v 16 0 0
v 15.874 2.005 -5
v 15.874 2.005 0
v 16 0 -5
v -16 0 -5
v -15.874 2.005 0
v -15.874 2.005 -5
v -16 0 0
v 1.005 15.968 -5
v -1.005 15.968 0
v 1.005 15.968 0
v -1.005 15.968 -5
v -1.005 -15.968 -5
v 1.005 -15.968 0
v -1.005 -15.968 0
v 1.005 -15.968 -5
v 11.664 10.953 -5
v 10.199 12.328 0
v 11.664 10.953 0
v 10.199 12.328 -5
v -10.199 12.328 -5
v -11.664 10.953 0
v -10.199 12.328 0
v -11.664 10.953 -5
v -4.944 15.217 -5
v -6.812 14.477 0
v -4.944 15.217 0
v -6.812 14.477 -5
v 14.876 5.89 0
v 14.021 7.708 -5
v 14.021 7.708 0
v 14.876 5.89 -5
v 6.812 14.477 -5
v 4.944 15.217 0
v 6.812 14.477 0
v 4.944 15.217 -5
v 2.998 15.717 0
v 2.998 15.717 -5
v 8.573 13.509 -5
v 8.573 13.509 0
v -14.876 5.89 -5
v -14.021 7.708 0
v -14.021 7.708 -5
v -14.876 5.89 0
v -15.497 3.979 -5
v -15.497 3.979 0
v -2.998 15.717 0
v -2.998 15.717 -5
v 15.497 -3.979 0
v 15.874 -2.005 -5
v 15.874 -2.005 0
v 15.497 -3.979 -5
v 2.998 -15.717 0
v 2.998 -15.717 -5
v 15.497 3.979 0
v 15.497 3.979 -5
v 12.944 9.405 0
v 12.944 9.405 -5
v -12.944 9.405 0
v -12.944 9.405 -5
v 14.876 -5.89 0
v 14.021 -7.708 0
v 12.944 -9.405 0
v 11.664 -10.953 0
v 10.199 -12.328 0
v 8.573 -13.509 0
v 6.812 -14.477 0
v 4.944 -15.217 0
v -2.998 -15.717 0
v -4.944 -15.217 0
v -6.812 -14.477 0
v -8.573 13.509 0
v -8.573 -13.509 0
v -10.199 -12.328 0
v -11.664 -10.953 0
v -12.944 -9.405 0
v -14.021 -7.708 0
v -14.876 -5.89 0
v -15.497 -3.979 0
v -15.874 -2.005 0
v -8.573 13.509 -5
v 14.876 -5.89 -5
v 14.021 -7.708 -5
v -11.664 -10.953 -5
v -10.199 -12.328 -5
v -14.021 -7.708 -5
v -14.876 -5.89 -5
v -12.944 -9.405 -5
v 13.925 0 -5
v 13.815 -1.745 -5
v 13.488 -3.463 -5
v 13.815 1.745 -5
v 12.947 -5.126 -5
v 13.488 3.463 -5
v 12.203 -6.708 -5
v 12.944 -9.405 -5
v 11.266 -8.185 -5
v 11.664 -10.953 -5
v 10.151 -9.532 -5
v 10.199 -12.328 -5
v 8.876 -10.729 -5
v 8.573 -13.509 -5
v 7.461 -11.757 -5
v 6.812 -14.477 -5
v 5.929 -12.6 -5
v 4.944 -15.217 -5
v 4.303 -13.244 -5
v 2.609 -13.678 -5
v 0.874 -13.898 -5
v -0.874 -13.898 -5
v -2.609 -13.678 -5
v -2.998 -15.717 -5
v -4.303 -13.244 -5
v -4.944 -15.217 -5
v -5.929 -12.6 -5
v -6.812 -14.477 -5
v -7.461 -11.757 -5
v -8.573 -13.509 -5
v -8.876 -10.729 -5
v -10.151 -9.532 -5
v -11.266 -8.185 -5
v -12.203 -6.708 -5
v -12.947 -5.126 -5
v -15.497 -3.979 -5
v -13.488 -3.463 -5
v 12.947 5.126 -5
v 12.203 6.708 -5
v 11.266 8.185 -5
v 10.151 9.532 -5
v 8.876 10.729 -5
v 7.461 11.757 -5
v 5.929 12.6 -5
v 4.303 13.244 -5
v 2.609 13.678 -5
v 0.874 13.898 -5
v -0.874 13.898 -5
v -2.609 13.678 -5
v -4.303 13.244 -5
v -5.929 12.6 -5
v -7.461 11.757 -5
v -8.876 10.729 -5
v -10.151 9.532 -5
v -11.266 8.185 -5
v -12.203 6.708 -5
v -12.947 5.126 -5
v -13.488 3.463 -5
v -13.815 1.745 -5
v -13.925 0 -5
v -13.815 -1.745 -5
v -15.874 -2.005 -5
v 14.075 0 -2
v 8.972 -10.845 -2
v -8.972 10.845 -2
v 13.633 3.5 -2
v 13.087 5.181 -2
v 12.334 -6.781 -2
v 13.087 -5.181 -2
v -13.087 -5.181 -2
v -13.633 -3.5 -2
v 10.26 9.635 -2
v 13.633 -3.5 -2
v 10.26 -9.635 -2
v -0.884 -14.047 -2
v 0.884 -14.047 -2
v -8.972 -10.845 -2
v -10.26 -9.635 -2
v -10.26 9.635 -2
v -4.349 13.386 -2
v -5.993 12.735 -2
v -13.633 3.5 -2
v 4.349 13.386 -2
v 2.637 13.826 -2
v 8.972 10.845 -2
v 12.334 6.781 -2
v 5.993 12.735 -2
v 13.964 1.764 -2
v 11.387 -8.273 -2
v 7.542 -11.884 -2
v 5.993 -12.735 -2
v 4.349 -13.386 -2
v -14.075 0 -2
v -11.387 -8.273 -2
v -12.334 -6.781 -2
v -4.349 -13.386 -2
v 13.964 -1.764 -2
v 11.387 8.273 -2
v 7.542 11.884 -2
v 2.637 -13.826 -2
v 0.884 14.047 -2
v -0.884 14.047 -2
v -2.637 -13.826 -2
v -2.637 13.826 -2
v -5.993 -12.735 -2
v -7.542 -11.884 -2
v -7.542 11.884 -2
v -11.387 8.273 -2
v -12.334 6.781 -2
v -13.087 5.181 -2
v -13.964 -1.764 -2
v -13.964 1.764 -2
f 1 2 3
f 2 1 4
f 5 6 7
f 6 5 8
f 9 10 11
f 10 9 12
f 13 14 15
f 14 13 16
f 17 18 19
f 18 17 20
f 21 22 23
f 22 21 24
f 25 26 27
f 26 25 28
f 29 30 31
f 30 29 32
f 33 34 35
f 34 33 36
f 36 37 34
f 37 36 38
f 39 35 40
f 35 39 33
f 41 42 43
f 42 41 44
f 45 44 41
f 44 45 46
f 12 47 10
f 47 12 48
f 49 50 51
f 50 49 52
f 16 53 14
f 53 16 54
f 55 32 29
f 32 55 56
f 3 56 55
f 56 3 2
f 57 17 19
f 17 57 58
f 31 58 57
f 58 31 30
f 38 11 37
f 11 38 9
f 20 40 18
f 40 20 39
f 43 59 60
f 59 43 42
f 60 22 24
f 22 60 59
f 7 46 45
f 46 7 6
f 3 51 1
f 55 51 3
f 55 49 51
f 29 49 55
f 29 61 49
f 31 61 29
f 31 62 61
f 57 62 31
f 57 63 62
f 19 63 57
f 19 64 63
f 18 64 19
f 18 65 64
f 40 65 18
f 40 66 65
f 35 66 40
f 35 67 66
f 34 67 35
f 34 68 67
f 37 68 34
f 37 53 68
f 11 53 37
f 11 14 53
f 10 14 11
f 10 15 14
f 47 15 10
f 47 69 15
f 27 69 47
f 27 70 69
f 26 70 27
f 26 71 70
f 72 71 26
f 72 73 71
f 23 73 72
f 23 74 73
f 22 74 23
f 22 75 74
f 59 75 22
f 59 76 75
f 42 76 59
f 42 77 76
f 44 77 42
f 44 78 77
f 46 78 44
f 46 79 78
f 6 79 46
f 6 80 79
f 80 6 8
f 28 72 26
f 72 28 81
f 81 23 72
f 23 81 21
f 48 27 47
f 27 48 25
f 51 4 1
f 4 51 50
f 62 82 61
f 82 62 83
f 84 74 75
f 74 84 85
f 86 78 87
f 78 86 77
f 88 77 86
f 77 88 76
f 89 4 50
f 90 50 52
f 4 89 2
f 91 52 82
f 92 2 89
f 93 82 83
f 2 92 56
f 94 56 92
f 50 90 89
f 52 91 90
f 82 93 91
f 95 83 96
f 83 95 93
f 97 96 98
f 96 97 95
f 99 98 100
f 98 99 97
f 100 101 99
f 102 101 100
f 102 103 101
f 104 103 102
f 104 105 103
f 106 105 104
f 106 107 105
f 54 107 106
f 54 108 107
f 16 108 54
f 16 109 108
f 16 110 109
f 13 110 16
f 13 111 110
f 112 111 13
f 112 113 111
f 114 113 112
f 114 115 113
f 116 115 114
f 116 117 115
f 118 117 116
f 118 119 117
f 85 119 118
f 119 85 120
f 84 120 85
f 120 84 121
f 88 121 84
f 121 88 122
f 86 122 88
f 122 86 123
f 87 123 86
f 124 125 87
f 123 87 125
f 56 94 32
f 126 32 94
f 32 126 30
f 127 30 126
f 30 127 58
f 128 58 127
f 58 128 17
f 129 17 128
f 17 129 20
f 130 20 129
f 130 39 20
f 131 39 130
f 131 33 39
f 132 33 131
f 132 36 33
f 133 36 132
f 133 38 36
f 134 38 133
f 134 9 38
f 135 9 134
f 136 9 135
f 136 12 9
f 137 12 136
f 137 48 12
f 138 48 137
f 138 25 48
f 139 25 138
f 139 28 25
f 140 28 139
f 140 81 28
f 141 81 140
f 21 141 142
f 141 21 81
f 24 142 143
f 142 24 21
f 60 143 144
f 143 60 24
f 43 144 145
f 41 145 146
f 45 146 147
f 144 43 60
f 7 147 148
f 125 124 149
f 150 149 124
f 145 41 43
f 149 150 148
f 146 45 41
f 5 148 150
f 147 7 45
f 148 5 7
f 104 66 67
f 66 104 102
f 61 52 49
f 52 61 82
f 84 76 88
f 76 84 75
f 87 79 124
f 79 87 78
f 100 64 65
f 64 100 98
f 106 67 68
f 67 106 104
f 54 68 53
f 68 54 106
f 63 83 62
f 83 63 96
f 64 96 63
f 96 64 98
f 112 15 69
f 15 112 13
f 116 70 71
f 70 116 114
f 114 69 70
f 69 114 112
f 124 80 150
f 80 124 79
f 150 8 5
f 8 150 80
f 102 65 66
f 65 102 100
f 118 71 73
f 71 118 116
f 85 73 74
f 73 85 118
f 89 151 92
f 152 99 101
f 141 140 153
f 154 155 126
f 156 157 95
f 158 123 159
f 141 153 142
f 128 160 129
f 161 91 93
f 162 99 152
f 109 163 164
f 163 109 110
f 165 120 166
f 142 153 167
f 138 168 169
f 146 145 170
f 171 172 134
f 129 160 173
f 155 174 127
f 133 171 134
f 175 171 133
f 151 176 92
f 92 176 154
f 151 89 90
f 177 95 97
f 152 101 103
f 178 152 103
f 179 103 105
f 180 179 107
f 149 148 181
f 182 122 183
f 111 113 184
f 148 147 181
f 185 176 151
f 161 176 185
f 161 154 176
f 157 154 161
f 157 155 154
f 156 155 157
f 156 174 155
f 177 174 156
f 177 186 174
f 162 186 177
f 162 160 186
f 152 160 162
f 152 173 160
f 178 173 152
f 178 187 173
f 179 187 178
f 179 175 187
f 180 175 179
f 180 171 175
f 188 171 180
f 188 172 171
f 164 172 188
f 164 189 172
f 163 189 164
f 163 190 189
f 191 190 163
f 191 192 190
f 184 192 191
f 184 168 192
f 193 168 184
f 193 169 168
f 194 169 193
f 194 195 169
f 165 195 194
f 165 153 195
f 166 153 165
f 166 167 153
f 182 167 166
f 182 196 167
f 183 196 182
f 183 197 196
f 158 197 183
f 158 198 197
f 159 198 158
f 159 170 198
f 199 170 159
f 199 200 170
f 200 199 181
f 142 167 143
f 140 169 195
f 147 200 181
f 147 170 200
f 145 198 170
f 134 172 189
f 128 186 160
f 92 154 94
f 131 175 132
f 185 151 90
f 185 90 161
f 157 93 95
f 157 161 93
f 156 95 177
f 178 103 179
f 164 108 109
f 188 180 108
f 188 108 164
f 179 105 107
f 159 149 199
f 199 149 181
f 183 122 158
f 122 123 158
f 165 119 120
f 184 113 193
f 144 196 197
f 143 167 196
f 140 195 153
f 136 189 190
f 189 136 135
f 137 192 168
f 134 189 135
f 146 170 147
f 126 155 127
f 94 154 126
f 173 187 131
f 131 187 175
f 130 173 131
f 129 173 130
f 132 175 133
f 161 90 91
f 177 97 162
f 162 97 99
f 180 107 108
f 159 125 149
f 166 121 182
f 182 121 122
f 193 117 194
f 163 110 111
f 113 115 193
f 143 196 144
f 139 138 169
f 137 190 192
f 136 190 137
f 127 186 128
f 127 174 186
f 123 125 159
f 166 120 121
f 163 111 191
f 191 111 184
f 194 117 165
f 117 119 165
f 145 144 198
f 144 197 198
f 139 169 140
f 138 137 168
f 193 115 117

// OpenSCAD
$fn = 50;


difference() {
	union() {
		translate(v = [0, 0, -5.0000000000]) {
			cylinder(h = 5, r = 16.0000000000);
		}
	}
	union() {
		#translate(v = [0, 0, -5.0000000000]) {
			cylinder(h = 3, r1 = 13.9250000000, r2 = 14.0750000000);
		}
	}
}
